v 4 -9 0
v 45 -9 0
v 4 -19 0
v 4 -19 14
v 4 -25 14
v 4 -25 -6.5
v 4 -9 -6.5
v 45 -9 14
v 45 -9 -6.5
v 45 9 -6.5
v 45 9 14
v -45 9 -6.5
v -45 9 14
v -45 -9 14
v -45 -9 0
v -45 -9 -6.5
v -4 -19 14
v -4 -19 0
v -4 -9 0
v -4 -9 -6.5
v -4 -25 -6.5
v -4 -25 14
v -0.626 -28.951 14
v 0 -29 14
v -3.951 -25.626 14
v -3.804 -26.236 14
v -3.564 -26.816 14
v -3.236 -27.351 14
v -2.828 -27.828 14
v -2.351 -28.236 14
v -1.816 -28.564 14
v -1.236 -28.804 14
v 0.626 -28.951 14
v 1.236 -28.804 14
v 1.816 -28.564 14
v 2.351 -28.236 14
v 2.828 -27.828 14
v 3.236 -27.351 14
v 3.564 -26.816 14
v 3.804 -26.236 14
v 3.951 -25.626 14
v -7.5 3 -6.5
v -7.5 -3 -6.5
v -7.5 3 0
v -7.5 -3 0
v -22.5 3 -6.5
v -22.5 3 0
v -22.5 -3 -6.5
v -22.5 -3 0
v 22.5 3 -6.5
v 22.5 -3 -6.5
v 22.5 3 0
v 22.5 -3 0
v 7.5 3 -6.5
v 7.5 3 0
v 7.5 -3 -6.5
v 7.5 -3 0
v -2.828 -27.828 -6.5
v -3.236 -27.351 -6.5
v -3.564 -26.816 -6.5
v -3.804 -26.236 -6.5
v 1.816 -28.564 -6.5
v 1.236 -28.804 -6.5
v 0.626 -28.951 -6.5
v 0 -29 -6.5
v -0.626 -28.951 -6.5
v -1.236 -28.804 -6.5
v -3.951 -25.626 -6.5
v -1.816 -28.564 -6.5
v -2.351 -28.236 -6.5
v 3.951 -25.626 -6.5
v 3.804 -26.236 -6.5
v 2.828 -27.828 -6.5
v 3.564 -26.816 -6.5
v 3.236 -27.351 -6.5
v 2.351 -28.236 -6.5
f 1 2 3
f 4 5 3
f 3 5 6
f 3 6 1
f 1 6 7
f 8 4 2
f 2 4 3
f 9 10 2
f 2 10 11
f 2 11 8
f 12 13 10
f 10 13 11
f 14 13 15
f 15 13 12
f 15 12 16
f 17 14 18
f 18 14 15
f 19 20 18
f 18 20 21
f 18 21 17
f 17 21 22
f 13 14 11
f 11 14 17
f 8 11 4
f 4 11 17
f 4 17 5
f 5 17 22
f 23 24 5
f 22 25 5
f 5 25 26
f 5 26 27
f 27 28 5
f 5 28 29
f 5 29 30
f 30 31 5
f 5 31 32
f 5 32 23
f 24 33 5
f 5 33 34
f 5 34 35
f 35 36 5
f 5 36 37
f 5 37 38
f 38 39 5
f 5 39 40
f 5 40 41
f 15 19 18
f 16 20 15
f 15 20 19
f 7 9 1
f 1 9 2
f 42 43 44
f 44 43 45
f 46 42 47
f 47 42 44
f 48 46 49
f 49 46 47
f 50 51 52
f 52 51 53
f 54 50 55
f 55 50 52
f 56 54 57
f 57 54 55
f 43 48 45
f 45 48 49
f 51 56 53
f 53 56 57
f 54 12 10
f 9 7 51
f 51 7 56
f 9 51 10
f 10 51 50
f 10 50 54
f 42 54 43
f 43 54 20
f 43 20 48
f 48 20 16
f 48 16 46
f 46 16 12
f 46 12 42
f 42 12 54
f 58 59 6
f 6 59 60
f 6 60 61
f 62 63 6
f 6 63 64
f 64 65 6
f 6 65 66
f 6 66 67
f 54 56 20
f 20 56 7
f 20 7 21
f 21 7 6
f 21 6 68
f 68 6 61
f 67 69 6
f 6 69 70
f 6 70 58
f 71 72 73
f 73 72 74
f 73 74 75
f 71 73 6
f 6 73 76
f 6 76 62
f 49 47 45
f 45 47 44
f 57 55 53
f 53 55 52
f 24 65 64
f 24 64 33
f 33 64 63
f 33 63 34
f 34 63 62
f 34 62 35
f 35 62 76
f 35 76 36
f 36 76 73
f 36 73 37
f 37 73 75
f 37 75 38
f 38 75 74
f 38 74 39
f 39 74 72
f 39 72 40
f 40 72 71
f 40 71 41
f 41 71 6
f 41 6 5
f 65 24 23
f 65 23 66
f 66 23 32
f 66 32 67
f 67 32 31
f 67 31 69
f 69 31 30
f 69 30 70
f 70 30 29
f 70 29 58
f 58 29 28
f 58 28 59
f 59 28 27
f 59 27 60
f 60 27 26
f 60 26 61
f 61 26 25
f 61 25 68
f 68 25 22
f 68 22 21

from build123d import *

# Parameters (mm, degrees)
SKETCH1_W           = 15
SKETCH1_H           = 6
SKETCH1_W_2         = 8
SKETCH1_H_2         = 20
BOSS_EXTRUDE1_DEPTH = 14
SKETCH3_W           = 15
SKETCH3_H           = 6
SKETCH3_W_2         = 8
SKETCH3_H_2         = 20
BOSS_EXTRUDE2_DEPTH = 6.5
FILLET1_R           = 4


with BuildPart() as part:
    # Sketch1 → Boss-Extrude1 (new body)
    # profile 1 of 6: a face of its own
    with BuildSketch(Plane.XY):
        Polygon((-4, -9), (4, -9), (45, -9), (45, 9), (-45, 9), (-45, -9), align=None)
        with Locations((-15, 0)):
            Rectangle(SKETCH1_W, SKETCH1_H, mode=Mode.SUBTRACT)
        with Locations((15, 0)):
            Rectangle(SKETCH1_W, SKETCH1_H, mode=Mode.SUBTRACT)
    # profile 2 of 6: a face of its own
    with BuildSketch(Plane.XY):
        with Locations((0, -19)):
            Rectangle(SKETCH1_W_2, SKETCH1_H_2)
    # profile 3 of 6: a face of its own
    with BuildSketch(Plane.XY):
        with Locations((-15, 0)):
            Rectangle(SKETCH1_W, SKETCH1_H)
    # profile 4 of 6: a face of its own
    with BuildSketch(Plane.XY):
        with Locations((15, 0)):
            Rectangle(SKETCH1_W, SKETCH1_H)
    # profile 5 of 6: a face of its own
    with BuildSketch(Plane.XY):
        Polygon((45, -9), (4, -9), (4, -19), align=None)
    # profile 6 of 6: a face of its own
    with BuildSketch(Plane.XY):
        Polygon((-4, -19), (-4, -9), (-45, -9), align=None)
    extrude(amount=BOSS_EXTRUDE1_DEPTH)

    # Sketch3 → Boss-Extrude2 (add)
    # profile 1 of 2: a face of its own
    with BuildSketch(Plane.XY):
        Polygon((-4, -9), (4, -9), (45, -9), (45, 9), (-45, 9), (-45, -9), align=None)
        with Locations((-15, 0)):
            Rectangle(SKETCH3_W, SKETCH3_H, mode=Mode.SUBTRACT)
        with Locations((15, 0)):
            Rectangle(SKETCH3_W, SKETCH3_H, mode=Mode.SUBTRACT)
    # profile 2 of 2: a face of its own
    with BuildSketch(Plane.XY):
        with Locations((0, -19)):
            Rectangle(SKETCH3_W_2, SKETCH3_H_2)
    extrude(amount=-BOSS_EXTRUDE2_DEPTH)

    # Fillet1
    fillet1_edges = [part.edges().sort_by_distance(p)[0] for p in [
        (-4, -29, 3.75),
        (4, -29, 3.75),
    ]]
    fillet(fillet1_edges, radius=FILLET1_R - 0.0001)  # a hair under: the kernel refuses the full size


solid = part.part
